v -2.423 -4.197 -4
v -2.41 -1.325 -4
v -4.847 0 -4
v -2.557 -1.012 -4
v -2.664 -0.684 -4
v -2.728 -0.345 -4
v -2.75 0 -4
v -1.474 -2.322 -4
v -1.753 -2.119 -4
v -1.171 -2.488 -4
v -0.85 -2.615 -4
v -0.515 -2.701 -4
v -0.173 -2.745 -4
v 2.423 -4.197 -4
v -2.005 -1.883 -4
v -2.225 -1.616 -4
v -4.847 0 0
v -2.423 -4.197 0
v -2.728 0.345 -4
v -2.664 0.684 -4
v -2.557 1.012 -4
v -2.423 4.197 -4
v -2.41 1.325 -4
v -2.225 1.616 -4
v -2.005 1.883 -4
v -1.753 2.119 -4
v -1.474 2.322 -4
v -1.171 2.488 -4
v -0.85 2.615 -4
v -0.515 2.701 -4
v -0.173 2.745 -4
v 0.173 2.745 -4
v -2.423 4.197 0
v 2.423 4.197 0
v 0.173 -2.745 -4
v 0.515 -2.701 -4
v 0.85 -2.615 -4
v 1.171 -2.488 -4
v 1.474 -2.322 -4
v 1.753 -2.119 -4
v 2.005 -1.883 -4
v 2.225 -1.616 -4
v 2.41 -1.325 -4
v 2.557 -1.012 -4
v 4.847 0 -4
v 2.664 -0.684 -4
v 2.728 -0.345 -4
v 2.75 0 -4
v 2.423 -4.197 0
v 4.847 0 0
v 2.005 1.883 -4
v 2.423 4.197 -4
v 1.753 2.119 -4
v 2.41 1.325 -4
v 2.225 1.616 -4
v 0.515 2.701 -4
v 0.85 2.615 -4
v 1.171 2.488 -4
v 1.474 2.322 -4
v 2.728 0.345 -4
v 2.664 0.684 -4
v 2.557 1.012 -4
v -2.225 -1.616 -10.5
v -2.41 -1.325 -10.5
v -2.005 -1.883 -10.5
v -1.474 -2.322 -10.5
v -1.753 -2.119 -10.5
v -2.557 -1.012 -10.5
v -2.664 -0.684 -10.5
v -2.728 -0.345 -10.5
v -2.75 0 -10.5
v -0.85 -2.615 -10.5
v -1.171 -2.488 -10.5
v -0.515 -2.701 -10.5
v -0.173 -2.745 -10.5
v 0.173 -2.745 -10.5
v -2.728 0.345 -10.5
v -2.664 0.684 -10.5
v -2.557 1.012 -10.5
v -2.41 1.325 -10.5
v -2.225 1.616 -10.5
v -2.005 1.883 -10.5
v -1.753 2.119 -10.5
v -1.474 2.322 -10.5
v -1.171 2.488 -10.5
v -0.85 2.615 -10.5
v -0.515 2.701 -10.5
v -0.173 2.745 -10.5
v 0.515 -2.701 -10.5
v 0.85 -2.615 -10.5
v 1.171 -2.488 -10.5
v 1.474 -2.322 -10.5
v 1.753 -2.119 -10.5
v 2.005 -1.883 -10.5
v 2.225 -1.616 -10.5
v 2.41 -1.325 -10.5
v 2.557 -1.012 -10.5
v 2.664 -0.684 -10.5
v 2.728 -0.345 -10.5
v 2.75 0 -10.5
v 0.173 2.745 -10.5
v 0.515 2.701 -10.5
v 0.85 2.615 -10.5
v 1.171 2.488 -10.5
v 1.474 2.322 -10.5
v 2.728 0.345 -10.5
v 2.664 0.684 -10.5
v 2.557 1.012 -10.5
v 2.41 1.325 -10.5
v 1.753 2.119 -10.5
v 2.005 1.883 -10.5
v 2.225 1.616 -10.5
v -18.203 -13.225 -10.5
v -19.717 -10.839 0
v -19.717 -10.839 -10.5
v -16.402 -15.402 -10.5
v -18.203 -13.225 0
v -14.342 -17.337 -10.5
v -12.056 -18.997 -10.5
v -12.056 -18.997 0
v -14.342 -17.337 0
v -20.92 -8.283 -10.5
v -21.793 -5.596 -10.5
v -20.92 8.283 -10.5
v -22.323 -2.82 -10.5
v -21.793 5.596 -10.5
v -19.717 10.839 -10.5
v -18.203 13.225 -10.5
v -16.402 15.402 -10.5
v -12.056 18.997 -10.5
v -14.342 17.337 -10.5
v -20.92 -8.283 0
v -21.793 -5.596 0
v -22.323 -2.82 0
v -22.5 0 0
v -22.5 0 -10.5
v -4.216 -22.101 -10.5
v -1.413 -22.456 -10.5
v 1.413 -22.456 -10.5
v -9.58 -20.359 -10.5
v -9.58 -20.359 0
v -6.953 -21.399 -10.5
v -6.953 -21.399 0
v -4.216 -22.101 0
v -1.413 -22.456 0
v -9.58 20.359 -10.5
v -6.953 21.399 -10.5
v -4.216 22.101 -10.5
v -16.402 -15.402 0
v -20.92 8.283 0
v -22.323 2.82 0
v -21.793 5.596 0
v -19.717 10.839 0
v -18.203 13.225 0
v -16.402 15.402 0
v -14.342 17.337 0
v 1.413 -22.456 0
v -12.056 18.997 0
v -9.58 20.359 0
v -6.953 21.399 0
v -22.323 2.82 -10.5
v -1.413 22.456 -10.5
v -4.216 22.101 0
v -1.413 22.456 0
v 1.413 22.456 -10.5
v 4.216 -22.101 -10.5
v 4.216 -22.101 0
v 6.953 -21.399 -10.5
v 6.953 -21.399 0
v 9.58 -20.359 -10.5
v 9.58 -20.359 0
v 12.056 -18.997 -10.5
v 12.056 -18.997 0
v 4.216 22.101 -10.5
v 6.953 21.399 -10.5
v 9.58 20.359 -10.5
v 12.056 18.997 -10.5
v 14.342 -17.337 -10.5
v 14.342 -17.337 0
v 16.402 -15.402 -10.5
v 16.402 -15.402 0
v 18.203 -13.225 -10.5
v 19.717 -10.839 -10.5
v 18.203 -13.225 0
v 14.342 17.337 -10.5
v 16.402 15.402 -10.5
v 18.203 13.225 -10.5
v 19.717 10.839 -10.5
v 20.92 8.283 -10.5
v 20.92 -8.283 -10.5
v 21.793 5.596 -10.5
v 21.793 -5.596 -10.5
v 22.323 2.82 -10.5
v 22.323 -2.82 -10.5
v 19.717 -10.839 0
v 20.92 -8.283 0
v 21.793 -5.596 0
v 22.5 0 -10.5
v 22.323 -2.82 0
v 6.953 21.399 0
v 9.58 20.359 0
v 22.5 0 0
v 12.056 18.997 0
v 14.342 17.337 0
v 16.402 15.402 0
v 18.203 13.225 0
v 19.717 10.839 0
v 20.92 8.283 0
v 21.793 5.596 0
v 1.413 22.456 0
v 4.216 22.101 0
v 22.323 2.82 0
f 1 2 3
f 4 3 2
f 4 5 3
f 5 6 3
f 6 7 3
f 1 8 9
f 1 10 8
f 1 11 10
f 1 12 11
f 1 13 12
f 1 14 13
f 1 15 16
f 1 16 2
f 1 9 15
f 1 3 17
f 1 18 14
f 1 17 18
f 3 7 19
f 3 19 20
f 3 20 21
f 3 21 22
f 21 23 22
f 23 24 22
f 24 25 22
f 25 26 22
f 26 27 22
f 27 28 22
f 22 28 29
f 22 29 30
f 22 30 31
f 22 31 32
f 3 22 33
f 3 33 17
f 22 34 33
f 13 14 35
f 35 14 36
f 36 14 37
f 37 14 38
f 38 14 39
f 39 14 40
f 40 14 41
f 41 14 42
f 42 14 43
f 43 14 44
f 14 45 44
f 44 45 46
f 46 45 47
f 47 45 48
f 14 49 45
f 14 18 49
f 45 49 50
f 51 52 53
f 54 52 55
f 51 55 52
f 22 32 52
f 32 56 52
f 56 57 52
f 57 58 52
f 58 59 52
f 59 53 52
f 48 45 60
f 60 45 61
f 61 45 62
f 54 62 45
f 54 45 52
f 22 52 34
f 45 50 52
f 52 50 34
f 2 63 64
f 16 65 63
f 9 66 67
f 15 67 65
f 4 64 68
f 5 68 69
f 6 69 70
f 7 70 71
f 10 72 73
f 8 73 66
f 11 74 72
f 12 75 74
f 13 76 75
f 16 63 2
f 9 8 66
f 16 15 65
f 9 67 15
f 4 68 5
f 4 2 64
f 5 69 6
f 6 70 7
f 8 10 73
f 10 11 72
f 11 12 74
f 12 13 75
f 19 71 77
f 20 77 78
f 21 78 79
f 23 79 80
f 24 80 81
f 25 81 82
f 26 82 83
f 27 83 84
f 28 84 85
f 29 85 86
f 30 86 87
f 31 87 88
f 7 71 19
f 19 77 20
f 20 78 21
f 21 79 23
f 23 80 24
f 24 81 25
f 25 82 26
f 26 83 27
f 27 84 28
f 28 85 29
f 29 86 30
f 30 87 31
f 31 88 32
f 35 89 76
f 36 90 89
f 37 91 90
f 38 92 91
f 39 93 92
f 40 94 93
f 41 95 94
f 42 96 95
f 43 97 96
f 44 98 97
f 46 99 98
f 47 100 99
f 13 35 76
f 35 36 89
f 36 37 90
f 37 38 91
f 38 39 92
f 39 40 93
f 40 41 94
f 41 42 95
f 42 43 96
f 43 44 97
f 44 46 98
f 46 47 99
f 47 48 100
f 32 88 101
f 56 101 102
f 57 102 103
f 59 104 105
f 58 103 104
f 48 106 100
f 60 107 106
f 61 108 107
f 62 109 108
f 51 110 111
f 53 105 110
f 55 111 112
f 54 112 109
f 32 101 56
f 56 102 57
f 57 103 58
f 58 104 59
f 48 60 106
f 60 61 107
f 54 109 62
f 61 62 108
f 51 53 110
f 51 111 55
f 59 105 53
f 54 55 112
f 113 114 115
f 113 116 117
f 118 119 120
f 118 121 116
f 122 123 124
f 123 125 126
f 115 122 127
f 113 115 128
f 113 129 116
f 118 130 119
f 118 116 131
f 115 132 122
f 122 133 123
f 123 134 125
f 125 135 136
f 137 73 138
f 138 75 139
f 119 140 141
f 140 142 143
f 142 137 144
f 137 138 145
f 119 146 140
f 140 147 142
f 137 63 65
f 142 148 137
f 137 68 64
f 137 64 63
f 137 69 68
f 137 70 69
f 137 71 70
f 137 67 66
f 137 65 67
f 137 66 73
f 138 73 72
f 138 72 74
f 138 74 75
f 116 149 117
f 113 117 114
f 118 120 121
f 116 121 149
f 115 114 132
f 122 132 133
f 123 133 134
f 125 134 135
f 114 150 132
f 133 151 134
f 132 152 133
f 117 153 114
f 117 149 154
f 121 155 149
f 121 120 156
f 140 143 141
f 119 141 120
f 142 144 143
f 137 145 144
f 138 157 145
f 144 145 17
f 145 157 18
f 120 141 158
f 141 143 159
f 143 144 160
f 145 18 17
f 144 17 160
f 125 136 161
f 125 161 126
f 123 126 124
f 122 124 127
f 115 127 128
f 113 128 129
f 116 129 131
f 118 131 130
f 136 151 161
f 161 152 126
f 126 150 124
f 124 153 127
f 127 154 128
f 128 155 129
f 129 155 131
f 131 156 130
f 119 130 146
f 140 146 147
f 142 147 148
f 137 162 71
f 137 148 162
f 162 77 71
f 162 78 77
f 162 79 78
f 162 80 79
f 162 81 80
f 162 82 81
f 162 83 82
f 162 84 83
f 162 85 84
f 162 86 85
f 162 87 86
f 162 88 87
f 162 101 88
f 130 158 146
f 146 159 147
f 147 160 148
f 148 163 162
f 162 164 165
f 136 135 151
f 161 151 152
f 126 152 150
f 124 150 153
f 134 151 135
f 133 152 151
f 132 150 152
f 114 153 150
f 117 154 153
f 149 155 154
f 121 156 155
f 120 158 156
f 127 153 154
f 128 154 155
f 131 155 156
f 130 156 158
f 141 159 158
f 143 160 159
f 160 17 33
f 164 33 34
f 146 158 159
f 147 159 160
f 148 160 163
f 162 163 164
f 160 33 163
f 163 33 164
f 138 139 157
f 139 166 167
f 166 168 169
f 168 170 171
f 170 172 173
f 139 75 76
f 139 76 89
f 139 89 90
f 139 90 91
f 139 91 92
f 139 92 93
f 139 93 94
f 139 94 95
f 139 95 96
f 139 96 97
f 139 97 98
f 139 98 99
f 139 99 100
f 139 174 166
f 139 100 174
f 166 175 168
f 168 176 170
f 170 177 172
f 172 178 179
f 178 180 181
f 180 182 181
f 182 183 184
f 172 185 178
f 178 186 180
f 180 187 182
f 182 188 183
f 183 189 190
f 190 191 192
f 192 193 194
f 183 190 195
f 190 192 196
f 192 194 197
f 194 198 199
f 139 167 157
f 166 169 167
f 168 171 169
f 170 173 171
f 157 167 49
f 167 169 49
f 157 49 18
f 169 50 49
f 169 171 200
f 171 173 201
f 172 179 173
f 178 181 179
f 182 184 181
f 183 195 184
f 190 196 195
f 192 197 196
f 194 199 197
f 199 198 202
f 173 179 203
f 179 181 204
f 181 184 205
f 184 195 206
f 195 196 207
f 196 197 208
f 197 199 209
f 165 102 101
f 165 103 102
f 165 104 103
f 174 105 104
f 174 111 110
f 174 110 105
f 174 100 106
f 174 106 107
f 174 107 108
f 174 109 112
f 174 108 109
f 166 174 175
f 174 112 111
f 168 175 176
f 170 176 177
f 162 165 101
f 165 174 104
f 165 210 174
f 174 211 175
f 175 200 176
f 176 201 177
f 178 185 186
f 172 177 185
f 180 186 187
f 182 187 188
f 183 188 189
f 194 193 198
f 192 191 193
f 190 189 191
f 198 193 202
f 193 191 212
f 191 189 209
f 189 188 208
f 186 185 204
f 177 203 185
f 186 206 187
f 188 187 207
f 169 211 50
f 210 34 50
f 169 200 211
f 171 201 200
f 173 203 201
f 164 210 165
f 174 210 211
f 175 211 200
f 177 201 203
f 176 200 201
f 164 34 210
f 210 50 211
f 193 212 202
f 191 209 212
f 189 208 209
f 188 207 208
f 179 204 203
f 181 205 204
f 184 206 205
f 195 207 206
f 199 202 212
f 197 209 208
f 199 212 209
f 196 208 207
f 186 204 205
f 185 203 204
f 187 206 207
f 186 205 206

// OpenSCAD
$fn = 50;


difference() {
	union() {
		translate(v = [0, 0, -10.5000000000]) {
			cylinder(h = 10.5000000000, r = 22.5000000000);
		}
	}
	union() {
		translate(v = [0, 0, 0]) {
			rotate(a = [0, 0, 0]) {
				difference() {
					union() {
						translate(v = [0, 0, -4]) {
							linear_extrude(height = 4) {
								polygon(points = [[4.8468000000, 0.0000000000], [2.4234000000, 4.1974519271], [-2.4234000000, 4.1974519271], [-4.8468000000, 0.0000000000], [-2.4234000000, -4.1974519271], [2.4234000000, -4.1974519271]]);
							}
						}
					}
					union();
				}
			}
		}
		#translate(v = [0, 0, -100.0000000000]) {
			cylinder(h = 200, r = 2.7500000000);
		}
	}
}
